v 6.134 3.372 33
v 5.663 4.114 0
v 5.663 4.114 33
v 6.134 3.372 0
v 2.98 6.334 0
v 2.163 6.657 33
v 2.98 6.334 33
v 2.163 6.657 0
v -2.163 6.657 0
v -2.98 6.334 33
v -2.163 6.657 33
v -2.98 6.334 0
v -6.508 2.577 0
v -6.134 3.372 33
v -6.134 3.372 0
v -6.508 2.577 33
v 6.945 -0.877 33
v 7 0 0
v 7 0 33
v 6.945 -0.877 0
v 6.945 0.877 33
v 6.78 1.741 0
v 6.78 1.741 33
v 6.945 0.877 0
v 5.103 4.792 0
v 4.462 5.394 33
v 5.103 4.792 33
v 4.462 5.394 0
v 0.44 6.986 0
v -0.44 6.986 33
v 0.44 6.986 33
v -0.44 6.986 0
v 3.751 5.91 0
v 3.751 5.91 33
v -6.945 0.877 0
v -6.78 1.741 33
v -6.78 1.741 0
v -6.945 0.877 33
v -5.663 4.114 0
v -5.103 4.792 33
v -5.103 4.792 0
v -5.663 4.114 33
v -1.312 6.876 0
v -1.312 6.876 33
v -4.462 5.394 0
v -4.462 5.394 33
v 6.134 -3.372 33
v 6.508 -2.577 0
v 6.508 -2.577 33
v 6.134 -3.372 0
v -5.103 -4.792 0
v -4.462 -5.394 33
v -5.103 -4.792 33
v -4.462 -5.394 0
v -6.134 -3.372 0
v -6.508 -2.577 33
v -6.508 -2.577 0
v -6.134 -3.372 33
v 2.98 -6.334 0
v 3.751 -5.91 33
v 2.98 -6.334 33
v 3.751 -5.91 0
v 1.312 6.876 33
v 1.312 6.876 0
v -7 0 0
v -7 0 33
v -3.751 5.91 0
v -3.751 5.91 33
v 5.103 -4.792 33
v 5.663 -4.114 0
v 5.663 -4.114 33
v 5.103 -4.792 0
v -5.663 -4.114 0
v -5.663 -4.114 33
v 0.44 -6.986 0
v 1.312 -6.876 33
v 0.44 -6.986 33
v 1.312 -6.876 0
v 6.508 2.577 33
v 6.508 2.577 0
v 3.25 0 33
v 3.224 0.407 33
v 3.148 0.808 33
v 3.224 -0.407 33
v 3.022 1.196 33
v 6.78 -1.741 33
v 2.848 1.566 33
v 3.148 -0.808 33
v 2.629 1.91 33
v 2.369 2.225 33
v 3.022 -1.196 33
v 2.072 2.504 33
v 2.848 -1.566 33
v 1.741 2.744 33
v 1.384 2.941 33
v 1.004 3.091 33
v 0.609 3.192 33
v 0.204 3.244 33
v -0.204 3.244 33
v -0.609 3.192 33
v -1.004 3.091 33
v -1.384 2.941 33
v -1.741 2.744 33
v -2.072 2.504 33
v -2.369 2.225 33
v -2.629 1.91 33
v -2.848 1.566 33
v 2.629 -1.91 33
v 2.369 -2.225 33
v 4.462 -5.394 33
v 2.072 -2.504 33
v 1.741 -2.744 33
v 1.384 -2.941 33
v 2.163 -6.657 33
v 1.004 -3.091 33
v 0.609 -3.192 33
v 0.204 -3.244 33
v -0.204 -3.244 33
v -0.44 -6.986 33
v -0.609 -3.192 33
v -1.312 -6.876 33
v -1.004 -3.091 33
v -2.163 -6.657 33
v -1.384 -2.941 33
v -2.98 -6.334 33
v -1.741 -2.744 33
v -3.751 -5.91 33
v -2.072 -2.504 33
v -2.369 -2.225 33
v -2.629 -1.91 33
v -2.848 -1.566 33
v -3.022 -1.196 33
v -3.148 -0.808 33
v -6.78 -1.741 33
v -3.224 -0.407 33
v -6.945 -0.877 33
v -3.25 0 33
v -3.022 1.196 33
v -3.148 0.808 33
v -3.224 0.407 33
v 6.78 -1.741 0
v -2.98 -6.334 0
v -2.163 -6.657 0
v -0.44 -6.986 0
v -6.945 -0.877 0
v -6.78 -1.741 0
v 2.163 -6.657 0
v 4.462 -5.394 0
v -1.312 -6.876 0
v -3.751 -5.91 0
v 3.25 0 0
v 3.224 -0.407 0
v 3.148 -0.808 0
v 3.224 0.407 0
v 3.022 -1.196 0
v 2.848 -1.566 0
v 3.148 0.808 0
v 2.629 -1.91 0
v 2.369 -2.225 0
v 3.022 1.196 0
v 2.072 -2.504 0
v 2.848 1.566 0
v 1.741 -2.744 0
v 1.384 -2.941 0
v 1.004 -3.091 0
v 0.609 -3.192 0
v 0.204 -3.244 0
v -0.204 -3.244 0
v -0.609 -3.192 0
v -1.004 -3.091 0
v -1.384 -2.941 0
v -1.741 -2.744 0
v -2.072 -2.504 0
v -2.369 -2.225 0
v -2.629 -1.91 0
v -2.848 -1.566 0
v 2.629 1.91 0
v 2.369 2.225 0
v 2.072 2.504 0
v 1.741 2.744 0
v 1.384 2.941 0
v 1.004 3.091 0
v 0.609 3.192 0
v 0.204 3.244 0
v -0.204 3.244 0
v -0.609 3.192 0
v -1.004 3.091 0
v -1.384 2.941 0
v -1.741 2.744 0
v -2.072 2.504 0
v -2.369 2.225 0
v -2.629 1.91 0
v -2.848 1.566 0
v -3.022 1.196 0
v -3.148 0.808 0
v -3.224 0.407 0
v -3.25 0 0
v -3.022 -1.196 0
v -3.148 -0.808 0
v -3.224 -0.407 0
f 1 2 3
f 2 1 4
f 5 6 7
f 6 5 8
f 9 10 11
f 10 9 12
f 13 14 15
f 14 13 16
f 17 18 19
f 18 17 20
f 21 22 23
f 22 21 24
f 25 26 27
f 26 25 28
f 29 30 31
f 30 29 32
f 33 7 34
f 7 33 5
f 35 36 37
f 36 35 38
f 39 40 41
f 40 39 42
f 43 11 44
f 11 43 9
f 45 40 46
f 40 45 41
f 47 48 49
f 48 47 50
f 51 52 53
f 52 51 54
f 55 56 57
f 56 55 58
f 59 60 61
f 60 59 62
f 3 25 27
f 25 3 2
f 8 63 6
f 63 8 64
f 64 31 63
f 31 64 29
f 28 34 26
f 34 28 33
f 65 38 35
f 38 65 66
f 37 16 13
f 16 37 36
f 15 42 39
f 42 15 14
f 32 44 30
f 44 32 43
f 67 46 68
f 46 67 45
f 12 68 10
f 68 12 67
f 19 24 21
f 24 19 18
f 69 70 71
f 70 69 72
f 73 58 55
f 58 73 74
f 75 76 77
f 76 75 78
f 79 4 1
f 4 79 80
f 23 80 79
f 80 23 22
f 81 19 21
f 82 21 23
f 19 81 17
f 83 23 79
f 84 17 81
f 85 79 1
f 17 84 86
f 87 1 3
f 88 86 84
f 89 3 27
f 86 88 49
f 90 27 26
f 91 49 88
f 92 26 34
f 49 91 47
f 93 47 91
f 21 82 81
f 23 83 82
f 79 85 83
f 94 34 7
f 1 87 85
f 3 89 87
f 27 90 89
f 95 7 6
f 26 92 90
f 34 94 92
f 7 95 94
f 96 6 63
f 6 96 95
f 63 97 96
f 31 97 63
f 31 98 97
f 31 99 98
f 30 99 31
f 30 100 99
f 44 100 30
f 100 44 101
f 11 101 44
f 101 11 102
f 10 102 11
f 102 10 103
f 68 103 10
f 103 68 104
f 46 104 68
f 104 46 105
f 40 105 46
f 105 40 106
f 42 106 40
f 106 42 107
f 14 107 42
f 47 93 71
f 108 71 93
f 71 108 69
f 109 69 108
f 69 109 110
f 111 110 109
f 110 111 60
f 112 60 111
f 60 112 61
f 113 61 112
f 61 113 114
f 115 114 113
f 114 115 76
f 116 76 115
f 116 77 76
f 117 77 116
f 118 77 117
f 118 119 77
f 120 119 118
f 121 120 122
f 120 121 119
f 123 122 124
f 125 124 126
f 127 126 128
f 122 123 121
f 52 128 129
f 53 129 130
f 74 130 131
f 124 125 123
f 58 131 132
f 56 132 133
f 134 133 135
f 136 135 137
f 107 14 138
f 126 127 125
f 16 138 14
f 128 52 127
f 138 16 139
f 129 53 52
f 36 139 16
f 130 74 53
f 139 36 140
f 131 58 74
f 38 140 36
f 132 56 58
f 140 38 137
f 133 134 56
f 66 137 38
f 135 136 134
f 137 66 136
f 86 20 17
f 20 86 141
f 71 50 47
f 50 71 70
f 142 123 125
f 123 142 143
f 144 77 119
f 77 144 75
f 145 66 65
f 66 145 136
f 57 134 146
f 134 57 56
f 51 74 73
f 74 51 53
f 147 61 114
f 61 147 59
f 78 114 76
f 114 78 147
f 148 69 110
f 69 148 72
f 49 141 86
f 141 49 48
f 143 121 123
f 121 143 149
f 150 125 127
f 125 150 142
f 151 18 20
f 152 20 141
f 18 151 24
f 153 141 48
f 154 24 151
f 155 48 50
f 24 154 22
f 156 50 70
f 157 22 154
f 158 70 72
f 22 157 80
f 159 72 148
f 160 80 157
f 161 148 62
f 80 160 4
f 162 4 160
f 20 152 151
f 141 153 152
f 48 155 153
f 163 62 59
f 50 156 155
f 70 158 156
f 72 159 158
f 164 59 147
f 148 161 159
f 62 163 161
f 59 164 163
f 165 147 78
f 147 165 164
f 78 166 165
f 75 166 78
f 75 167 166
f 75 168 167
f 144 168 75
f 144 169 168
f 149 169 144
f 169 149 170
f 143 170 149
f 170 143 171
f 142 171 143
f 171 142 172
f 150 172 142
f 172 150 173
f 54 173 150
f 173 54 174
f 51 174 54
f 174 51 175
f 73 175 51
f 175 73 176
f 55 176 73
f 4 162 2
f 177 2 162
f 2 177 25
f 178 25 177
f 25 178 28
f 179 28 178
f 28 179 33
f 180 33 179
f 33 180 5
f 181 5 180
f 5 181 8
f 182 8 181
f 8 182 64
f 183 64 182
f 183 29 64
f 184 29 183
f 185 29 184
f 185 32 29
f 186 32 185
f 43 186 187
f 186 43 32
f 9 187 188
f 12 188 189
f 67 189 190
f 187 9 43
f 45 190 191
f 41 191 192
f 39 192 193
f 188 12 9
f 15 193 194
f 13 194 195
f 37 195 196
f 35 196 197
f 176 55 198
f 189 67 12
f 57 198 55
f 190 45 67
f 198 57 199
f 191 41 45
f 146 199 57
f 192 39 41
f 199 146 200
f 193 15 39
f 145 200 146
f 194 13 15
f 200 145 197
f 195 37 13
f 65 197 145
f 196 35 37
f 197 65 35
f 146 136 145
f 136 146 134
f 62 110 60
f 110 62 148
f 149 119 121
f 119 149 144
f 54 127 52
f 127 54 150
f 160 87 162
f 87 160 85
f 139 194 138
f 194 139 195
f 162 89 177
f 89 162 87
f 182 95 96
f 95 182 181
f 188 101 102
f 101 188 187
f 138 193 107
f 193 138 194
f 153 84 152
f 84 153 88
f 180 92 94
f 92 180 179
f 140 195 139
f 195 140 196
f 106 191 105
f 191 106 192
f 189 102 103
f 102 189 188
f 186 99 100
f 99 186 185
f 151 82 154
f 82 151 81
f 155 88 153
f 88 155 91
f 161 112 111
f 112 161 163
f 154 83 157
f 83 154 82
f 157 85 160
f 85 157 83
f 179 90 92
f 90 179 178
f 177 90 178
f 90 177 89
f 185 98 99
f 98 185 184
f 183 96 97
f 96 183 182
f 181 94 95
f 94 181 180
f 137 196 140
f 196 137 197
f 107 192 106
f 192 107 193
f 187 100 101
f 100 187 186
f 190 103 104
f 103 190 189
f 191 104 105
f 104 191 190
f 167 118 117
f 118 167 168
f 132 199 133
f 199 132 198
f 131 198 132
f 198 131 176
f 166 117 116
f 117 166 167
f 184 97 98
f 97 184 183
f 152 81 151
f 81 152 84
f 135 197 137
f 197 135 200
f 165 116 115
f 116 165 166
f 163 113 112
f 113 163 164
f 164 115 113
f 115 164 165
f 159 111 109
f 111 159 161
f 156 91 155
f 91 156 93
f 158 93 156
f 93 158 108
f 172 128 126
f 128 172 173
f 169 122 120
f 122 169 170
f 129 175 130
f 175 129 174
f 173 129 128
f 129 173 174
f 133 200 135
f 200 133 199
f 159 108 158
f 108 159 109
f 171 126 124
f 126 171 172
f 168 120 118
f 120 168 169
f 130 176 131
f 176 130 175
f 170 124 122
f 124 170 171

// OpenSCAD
$fn = 50;


difference() {
	union() {
		cylinder(h = 33, r = 7.0000000000);
	}
	union() {
		translate(v = [0, 0, -100]) {
			cylinder(h = 200, r = 3.2500000000);
		}
	}
}
